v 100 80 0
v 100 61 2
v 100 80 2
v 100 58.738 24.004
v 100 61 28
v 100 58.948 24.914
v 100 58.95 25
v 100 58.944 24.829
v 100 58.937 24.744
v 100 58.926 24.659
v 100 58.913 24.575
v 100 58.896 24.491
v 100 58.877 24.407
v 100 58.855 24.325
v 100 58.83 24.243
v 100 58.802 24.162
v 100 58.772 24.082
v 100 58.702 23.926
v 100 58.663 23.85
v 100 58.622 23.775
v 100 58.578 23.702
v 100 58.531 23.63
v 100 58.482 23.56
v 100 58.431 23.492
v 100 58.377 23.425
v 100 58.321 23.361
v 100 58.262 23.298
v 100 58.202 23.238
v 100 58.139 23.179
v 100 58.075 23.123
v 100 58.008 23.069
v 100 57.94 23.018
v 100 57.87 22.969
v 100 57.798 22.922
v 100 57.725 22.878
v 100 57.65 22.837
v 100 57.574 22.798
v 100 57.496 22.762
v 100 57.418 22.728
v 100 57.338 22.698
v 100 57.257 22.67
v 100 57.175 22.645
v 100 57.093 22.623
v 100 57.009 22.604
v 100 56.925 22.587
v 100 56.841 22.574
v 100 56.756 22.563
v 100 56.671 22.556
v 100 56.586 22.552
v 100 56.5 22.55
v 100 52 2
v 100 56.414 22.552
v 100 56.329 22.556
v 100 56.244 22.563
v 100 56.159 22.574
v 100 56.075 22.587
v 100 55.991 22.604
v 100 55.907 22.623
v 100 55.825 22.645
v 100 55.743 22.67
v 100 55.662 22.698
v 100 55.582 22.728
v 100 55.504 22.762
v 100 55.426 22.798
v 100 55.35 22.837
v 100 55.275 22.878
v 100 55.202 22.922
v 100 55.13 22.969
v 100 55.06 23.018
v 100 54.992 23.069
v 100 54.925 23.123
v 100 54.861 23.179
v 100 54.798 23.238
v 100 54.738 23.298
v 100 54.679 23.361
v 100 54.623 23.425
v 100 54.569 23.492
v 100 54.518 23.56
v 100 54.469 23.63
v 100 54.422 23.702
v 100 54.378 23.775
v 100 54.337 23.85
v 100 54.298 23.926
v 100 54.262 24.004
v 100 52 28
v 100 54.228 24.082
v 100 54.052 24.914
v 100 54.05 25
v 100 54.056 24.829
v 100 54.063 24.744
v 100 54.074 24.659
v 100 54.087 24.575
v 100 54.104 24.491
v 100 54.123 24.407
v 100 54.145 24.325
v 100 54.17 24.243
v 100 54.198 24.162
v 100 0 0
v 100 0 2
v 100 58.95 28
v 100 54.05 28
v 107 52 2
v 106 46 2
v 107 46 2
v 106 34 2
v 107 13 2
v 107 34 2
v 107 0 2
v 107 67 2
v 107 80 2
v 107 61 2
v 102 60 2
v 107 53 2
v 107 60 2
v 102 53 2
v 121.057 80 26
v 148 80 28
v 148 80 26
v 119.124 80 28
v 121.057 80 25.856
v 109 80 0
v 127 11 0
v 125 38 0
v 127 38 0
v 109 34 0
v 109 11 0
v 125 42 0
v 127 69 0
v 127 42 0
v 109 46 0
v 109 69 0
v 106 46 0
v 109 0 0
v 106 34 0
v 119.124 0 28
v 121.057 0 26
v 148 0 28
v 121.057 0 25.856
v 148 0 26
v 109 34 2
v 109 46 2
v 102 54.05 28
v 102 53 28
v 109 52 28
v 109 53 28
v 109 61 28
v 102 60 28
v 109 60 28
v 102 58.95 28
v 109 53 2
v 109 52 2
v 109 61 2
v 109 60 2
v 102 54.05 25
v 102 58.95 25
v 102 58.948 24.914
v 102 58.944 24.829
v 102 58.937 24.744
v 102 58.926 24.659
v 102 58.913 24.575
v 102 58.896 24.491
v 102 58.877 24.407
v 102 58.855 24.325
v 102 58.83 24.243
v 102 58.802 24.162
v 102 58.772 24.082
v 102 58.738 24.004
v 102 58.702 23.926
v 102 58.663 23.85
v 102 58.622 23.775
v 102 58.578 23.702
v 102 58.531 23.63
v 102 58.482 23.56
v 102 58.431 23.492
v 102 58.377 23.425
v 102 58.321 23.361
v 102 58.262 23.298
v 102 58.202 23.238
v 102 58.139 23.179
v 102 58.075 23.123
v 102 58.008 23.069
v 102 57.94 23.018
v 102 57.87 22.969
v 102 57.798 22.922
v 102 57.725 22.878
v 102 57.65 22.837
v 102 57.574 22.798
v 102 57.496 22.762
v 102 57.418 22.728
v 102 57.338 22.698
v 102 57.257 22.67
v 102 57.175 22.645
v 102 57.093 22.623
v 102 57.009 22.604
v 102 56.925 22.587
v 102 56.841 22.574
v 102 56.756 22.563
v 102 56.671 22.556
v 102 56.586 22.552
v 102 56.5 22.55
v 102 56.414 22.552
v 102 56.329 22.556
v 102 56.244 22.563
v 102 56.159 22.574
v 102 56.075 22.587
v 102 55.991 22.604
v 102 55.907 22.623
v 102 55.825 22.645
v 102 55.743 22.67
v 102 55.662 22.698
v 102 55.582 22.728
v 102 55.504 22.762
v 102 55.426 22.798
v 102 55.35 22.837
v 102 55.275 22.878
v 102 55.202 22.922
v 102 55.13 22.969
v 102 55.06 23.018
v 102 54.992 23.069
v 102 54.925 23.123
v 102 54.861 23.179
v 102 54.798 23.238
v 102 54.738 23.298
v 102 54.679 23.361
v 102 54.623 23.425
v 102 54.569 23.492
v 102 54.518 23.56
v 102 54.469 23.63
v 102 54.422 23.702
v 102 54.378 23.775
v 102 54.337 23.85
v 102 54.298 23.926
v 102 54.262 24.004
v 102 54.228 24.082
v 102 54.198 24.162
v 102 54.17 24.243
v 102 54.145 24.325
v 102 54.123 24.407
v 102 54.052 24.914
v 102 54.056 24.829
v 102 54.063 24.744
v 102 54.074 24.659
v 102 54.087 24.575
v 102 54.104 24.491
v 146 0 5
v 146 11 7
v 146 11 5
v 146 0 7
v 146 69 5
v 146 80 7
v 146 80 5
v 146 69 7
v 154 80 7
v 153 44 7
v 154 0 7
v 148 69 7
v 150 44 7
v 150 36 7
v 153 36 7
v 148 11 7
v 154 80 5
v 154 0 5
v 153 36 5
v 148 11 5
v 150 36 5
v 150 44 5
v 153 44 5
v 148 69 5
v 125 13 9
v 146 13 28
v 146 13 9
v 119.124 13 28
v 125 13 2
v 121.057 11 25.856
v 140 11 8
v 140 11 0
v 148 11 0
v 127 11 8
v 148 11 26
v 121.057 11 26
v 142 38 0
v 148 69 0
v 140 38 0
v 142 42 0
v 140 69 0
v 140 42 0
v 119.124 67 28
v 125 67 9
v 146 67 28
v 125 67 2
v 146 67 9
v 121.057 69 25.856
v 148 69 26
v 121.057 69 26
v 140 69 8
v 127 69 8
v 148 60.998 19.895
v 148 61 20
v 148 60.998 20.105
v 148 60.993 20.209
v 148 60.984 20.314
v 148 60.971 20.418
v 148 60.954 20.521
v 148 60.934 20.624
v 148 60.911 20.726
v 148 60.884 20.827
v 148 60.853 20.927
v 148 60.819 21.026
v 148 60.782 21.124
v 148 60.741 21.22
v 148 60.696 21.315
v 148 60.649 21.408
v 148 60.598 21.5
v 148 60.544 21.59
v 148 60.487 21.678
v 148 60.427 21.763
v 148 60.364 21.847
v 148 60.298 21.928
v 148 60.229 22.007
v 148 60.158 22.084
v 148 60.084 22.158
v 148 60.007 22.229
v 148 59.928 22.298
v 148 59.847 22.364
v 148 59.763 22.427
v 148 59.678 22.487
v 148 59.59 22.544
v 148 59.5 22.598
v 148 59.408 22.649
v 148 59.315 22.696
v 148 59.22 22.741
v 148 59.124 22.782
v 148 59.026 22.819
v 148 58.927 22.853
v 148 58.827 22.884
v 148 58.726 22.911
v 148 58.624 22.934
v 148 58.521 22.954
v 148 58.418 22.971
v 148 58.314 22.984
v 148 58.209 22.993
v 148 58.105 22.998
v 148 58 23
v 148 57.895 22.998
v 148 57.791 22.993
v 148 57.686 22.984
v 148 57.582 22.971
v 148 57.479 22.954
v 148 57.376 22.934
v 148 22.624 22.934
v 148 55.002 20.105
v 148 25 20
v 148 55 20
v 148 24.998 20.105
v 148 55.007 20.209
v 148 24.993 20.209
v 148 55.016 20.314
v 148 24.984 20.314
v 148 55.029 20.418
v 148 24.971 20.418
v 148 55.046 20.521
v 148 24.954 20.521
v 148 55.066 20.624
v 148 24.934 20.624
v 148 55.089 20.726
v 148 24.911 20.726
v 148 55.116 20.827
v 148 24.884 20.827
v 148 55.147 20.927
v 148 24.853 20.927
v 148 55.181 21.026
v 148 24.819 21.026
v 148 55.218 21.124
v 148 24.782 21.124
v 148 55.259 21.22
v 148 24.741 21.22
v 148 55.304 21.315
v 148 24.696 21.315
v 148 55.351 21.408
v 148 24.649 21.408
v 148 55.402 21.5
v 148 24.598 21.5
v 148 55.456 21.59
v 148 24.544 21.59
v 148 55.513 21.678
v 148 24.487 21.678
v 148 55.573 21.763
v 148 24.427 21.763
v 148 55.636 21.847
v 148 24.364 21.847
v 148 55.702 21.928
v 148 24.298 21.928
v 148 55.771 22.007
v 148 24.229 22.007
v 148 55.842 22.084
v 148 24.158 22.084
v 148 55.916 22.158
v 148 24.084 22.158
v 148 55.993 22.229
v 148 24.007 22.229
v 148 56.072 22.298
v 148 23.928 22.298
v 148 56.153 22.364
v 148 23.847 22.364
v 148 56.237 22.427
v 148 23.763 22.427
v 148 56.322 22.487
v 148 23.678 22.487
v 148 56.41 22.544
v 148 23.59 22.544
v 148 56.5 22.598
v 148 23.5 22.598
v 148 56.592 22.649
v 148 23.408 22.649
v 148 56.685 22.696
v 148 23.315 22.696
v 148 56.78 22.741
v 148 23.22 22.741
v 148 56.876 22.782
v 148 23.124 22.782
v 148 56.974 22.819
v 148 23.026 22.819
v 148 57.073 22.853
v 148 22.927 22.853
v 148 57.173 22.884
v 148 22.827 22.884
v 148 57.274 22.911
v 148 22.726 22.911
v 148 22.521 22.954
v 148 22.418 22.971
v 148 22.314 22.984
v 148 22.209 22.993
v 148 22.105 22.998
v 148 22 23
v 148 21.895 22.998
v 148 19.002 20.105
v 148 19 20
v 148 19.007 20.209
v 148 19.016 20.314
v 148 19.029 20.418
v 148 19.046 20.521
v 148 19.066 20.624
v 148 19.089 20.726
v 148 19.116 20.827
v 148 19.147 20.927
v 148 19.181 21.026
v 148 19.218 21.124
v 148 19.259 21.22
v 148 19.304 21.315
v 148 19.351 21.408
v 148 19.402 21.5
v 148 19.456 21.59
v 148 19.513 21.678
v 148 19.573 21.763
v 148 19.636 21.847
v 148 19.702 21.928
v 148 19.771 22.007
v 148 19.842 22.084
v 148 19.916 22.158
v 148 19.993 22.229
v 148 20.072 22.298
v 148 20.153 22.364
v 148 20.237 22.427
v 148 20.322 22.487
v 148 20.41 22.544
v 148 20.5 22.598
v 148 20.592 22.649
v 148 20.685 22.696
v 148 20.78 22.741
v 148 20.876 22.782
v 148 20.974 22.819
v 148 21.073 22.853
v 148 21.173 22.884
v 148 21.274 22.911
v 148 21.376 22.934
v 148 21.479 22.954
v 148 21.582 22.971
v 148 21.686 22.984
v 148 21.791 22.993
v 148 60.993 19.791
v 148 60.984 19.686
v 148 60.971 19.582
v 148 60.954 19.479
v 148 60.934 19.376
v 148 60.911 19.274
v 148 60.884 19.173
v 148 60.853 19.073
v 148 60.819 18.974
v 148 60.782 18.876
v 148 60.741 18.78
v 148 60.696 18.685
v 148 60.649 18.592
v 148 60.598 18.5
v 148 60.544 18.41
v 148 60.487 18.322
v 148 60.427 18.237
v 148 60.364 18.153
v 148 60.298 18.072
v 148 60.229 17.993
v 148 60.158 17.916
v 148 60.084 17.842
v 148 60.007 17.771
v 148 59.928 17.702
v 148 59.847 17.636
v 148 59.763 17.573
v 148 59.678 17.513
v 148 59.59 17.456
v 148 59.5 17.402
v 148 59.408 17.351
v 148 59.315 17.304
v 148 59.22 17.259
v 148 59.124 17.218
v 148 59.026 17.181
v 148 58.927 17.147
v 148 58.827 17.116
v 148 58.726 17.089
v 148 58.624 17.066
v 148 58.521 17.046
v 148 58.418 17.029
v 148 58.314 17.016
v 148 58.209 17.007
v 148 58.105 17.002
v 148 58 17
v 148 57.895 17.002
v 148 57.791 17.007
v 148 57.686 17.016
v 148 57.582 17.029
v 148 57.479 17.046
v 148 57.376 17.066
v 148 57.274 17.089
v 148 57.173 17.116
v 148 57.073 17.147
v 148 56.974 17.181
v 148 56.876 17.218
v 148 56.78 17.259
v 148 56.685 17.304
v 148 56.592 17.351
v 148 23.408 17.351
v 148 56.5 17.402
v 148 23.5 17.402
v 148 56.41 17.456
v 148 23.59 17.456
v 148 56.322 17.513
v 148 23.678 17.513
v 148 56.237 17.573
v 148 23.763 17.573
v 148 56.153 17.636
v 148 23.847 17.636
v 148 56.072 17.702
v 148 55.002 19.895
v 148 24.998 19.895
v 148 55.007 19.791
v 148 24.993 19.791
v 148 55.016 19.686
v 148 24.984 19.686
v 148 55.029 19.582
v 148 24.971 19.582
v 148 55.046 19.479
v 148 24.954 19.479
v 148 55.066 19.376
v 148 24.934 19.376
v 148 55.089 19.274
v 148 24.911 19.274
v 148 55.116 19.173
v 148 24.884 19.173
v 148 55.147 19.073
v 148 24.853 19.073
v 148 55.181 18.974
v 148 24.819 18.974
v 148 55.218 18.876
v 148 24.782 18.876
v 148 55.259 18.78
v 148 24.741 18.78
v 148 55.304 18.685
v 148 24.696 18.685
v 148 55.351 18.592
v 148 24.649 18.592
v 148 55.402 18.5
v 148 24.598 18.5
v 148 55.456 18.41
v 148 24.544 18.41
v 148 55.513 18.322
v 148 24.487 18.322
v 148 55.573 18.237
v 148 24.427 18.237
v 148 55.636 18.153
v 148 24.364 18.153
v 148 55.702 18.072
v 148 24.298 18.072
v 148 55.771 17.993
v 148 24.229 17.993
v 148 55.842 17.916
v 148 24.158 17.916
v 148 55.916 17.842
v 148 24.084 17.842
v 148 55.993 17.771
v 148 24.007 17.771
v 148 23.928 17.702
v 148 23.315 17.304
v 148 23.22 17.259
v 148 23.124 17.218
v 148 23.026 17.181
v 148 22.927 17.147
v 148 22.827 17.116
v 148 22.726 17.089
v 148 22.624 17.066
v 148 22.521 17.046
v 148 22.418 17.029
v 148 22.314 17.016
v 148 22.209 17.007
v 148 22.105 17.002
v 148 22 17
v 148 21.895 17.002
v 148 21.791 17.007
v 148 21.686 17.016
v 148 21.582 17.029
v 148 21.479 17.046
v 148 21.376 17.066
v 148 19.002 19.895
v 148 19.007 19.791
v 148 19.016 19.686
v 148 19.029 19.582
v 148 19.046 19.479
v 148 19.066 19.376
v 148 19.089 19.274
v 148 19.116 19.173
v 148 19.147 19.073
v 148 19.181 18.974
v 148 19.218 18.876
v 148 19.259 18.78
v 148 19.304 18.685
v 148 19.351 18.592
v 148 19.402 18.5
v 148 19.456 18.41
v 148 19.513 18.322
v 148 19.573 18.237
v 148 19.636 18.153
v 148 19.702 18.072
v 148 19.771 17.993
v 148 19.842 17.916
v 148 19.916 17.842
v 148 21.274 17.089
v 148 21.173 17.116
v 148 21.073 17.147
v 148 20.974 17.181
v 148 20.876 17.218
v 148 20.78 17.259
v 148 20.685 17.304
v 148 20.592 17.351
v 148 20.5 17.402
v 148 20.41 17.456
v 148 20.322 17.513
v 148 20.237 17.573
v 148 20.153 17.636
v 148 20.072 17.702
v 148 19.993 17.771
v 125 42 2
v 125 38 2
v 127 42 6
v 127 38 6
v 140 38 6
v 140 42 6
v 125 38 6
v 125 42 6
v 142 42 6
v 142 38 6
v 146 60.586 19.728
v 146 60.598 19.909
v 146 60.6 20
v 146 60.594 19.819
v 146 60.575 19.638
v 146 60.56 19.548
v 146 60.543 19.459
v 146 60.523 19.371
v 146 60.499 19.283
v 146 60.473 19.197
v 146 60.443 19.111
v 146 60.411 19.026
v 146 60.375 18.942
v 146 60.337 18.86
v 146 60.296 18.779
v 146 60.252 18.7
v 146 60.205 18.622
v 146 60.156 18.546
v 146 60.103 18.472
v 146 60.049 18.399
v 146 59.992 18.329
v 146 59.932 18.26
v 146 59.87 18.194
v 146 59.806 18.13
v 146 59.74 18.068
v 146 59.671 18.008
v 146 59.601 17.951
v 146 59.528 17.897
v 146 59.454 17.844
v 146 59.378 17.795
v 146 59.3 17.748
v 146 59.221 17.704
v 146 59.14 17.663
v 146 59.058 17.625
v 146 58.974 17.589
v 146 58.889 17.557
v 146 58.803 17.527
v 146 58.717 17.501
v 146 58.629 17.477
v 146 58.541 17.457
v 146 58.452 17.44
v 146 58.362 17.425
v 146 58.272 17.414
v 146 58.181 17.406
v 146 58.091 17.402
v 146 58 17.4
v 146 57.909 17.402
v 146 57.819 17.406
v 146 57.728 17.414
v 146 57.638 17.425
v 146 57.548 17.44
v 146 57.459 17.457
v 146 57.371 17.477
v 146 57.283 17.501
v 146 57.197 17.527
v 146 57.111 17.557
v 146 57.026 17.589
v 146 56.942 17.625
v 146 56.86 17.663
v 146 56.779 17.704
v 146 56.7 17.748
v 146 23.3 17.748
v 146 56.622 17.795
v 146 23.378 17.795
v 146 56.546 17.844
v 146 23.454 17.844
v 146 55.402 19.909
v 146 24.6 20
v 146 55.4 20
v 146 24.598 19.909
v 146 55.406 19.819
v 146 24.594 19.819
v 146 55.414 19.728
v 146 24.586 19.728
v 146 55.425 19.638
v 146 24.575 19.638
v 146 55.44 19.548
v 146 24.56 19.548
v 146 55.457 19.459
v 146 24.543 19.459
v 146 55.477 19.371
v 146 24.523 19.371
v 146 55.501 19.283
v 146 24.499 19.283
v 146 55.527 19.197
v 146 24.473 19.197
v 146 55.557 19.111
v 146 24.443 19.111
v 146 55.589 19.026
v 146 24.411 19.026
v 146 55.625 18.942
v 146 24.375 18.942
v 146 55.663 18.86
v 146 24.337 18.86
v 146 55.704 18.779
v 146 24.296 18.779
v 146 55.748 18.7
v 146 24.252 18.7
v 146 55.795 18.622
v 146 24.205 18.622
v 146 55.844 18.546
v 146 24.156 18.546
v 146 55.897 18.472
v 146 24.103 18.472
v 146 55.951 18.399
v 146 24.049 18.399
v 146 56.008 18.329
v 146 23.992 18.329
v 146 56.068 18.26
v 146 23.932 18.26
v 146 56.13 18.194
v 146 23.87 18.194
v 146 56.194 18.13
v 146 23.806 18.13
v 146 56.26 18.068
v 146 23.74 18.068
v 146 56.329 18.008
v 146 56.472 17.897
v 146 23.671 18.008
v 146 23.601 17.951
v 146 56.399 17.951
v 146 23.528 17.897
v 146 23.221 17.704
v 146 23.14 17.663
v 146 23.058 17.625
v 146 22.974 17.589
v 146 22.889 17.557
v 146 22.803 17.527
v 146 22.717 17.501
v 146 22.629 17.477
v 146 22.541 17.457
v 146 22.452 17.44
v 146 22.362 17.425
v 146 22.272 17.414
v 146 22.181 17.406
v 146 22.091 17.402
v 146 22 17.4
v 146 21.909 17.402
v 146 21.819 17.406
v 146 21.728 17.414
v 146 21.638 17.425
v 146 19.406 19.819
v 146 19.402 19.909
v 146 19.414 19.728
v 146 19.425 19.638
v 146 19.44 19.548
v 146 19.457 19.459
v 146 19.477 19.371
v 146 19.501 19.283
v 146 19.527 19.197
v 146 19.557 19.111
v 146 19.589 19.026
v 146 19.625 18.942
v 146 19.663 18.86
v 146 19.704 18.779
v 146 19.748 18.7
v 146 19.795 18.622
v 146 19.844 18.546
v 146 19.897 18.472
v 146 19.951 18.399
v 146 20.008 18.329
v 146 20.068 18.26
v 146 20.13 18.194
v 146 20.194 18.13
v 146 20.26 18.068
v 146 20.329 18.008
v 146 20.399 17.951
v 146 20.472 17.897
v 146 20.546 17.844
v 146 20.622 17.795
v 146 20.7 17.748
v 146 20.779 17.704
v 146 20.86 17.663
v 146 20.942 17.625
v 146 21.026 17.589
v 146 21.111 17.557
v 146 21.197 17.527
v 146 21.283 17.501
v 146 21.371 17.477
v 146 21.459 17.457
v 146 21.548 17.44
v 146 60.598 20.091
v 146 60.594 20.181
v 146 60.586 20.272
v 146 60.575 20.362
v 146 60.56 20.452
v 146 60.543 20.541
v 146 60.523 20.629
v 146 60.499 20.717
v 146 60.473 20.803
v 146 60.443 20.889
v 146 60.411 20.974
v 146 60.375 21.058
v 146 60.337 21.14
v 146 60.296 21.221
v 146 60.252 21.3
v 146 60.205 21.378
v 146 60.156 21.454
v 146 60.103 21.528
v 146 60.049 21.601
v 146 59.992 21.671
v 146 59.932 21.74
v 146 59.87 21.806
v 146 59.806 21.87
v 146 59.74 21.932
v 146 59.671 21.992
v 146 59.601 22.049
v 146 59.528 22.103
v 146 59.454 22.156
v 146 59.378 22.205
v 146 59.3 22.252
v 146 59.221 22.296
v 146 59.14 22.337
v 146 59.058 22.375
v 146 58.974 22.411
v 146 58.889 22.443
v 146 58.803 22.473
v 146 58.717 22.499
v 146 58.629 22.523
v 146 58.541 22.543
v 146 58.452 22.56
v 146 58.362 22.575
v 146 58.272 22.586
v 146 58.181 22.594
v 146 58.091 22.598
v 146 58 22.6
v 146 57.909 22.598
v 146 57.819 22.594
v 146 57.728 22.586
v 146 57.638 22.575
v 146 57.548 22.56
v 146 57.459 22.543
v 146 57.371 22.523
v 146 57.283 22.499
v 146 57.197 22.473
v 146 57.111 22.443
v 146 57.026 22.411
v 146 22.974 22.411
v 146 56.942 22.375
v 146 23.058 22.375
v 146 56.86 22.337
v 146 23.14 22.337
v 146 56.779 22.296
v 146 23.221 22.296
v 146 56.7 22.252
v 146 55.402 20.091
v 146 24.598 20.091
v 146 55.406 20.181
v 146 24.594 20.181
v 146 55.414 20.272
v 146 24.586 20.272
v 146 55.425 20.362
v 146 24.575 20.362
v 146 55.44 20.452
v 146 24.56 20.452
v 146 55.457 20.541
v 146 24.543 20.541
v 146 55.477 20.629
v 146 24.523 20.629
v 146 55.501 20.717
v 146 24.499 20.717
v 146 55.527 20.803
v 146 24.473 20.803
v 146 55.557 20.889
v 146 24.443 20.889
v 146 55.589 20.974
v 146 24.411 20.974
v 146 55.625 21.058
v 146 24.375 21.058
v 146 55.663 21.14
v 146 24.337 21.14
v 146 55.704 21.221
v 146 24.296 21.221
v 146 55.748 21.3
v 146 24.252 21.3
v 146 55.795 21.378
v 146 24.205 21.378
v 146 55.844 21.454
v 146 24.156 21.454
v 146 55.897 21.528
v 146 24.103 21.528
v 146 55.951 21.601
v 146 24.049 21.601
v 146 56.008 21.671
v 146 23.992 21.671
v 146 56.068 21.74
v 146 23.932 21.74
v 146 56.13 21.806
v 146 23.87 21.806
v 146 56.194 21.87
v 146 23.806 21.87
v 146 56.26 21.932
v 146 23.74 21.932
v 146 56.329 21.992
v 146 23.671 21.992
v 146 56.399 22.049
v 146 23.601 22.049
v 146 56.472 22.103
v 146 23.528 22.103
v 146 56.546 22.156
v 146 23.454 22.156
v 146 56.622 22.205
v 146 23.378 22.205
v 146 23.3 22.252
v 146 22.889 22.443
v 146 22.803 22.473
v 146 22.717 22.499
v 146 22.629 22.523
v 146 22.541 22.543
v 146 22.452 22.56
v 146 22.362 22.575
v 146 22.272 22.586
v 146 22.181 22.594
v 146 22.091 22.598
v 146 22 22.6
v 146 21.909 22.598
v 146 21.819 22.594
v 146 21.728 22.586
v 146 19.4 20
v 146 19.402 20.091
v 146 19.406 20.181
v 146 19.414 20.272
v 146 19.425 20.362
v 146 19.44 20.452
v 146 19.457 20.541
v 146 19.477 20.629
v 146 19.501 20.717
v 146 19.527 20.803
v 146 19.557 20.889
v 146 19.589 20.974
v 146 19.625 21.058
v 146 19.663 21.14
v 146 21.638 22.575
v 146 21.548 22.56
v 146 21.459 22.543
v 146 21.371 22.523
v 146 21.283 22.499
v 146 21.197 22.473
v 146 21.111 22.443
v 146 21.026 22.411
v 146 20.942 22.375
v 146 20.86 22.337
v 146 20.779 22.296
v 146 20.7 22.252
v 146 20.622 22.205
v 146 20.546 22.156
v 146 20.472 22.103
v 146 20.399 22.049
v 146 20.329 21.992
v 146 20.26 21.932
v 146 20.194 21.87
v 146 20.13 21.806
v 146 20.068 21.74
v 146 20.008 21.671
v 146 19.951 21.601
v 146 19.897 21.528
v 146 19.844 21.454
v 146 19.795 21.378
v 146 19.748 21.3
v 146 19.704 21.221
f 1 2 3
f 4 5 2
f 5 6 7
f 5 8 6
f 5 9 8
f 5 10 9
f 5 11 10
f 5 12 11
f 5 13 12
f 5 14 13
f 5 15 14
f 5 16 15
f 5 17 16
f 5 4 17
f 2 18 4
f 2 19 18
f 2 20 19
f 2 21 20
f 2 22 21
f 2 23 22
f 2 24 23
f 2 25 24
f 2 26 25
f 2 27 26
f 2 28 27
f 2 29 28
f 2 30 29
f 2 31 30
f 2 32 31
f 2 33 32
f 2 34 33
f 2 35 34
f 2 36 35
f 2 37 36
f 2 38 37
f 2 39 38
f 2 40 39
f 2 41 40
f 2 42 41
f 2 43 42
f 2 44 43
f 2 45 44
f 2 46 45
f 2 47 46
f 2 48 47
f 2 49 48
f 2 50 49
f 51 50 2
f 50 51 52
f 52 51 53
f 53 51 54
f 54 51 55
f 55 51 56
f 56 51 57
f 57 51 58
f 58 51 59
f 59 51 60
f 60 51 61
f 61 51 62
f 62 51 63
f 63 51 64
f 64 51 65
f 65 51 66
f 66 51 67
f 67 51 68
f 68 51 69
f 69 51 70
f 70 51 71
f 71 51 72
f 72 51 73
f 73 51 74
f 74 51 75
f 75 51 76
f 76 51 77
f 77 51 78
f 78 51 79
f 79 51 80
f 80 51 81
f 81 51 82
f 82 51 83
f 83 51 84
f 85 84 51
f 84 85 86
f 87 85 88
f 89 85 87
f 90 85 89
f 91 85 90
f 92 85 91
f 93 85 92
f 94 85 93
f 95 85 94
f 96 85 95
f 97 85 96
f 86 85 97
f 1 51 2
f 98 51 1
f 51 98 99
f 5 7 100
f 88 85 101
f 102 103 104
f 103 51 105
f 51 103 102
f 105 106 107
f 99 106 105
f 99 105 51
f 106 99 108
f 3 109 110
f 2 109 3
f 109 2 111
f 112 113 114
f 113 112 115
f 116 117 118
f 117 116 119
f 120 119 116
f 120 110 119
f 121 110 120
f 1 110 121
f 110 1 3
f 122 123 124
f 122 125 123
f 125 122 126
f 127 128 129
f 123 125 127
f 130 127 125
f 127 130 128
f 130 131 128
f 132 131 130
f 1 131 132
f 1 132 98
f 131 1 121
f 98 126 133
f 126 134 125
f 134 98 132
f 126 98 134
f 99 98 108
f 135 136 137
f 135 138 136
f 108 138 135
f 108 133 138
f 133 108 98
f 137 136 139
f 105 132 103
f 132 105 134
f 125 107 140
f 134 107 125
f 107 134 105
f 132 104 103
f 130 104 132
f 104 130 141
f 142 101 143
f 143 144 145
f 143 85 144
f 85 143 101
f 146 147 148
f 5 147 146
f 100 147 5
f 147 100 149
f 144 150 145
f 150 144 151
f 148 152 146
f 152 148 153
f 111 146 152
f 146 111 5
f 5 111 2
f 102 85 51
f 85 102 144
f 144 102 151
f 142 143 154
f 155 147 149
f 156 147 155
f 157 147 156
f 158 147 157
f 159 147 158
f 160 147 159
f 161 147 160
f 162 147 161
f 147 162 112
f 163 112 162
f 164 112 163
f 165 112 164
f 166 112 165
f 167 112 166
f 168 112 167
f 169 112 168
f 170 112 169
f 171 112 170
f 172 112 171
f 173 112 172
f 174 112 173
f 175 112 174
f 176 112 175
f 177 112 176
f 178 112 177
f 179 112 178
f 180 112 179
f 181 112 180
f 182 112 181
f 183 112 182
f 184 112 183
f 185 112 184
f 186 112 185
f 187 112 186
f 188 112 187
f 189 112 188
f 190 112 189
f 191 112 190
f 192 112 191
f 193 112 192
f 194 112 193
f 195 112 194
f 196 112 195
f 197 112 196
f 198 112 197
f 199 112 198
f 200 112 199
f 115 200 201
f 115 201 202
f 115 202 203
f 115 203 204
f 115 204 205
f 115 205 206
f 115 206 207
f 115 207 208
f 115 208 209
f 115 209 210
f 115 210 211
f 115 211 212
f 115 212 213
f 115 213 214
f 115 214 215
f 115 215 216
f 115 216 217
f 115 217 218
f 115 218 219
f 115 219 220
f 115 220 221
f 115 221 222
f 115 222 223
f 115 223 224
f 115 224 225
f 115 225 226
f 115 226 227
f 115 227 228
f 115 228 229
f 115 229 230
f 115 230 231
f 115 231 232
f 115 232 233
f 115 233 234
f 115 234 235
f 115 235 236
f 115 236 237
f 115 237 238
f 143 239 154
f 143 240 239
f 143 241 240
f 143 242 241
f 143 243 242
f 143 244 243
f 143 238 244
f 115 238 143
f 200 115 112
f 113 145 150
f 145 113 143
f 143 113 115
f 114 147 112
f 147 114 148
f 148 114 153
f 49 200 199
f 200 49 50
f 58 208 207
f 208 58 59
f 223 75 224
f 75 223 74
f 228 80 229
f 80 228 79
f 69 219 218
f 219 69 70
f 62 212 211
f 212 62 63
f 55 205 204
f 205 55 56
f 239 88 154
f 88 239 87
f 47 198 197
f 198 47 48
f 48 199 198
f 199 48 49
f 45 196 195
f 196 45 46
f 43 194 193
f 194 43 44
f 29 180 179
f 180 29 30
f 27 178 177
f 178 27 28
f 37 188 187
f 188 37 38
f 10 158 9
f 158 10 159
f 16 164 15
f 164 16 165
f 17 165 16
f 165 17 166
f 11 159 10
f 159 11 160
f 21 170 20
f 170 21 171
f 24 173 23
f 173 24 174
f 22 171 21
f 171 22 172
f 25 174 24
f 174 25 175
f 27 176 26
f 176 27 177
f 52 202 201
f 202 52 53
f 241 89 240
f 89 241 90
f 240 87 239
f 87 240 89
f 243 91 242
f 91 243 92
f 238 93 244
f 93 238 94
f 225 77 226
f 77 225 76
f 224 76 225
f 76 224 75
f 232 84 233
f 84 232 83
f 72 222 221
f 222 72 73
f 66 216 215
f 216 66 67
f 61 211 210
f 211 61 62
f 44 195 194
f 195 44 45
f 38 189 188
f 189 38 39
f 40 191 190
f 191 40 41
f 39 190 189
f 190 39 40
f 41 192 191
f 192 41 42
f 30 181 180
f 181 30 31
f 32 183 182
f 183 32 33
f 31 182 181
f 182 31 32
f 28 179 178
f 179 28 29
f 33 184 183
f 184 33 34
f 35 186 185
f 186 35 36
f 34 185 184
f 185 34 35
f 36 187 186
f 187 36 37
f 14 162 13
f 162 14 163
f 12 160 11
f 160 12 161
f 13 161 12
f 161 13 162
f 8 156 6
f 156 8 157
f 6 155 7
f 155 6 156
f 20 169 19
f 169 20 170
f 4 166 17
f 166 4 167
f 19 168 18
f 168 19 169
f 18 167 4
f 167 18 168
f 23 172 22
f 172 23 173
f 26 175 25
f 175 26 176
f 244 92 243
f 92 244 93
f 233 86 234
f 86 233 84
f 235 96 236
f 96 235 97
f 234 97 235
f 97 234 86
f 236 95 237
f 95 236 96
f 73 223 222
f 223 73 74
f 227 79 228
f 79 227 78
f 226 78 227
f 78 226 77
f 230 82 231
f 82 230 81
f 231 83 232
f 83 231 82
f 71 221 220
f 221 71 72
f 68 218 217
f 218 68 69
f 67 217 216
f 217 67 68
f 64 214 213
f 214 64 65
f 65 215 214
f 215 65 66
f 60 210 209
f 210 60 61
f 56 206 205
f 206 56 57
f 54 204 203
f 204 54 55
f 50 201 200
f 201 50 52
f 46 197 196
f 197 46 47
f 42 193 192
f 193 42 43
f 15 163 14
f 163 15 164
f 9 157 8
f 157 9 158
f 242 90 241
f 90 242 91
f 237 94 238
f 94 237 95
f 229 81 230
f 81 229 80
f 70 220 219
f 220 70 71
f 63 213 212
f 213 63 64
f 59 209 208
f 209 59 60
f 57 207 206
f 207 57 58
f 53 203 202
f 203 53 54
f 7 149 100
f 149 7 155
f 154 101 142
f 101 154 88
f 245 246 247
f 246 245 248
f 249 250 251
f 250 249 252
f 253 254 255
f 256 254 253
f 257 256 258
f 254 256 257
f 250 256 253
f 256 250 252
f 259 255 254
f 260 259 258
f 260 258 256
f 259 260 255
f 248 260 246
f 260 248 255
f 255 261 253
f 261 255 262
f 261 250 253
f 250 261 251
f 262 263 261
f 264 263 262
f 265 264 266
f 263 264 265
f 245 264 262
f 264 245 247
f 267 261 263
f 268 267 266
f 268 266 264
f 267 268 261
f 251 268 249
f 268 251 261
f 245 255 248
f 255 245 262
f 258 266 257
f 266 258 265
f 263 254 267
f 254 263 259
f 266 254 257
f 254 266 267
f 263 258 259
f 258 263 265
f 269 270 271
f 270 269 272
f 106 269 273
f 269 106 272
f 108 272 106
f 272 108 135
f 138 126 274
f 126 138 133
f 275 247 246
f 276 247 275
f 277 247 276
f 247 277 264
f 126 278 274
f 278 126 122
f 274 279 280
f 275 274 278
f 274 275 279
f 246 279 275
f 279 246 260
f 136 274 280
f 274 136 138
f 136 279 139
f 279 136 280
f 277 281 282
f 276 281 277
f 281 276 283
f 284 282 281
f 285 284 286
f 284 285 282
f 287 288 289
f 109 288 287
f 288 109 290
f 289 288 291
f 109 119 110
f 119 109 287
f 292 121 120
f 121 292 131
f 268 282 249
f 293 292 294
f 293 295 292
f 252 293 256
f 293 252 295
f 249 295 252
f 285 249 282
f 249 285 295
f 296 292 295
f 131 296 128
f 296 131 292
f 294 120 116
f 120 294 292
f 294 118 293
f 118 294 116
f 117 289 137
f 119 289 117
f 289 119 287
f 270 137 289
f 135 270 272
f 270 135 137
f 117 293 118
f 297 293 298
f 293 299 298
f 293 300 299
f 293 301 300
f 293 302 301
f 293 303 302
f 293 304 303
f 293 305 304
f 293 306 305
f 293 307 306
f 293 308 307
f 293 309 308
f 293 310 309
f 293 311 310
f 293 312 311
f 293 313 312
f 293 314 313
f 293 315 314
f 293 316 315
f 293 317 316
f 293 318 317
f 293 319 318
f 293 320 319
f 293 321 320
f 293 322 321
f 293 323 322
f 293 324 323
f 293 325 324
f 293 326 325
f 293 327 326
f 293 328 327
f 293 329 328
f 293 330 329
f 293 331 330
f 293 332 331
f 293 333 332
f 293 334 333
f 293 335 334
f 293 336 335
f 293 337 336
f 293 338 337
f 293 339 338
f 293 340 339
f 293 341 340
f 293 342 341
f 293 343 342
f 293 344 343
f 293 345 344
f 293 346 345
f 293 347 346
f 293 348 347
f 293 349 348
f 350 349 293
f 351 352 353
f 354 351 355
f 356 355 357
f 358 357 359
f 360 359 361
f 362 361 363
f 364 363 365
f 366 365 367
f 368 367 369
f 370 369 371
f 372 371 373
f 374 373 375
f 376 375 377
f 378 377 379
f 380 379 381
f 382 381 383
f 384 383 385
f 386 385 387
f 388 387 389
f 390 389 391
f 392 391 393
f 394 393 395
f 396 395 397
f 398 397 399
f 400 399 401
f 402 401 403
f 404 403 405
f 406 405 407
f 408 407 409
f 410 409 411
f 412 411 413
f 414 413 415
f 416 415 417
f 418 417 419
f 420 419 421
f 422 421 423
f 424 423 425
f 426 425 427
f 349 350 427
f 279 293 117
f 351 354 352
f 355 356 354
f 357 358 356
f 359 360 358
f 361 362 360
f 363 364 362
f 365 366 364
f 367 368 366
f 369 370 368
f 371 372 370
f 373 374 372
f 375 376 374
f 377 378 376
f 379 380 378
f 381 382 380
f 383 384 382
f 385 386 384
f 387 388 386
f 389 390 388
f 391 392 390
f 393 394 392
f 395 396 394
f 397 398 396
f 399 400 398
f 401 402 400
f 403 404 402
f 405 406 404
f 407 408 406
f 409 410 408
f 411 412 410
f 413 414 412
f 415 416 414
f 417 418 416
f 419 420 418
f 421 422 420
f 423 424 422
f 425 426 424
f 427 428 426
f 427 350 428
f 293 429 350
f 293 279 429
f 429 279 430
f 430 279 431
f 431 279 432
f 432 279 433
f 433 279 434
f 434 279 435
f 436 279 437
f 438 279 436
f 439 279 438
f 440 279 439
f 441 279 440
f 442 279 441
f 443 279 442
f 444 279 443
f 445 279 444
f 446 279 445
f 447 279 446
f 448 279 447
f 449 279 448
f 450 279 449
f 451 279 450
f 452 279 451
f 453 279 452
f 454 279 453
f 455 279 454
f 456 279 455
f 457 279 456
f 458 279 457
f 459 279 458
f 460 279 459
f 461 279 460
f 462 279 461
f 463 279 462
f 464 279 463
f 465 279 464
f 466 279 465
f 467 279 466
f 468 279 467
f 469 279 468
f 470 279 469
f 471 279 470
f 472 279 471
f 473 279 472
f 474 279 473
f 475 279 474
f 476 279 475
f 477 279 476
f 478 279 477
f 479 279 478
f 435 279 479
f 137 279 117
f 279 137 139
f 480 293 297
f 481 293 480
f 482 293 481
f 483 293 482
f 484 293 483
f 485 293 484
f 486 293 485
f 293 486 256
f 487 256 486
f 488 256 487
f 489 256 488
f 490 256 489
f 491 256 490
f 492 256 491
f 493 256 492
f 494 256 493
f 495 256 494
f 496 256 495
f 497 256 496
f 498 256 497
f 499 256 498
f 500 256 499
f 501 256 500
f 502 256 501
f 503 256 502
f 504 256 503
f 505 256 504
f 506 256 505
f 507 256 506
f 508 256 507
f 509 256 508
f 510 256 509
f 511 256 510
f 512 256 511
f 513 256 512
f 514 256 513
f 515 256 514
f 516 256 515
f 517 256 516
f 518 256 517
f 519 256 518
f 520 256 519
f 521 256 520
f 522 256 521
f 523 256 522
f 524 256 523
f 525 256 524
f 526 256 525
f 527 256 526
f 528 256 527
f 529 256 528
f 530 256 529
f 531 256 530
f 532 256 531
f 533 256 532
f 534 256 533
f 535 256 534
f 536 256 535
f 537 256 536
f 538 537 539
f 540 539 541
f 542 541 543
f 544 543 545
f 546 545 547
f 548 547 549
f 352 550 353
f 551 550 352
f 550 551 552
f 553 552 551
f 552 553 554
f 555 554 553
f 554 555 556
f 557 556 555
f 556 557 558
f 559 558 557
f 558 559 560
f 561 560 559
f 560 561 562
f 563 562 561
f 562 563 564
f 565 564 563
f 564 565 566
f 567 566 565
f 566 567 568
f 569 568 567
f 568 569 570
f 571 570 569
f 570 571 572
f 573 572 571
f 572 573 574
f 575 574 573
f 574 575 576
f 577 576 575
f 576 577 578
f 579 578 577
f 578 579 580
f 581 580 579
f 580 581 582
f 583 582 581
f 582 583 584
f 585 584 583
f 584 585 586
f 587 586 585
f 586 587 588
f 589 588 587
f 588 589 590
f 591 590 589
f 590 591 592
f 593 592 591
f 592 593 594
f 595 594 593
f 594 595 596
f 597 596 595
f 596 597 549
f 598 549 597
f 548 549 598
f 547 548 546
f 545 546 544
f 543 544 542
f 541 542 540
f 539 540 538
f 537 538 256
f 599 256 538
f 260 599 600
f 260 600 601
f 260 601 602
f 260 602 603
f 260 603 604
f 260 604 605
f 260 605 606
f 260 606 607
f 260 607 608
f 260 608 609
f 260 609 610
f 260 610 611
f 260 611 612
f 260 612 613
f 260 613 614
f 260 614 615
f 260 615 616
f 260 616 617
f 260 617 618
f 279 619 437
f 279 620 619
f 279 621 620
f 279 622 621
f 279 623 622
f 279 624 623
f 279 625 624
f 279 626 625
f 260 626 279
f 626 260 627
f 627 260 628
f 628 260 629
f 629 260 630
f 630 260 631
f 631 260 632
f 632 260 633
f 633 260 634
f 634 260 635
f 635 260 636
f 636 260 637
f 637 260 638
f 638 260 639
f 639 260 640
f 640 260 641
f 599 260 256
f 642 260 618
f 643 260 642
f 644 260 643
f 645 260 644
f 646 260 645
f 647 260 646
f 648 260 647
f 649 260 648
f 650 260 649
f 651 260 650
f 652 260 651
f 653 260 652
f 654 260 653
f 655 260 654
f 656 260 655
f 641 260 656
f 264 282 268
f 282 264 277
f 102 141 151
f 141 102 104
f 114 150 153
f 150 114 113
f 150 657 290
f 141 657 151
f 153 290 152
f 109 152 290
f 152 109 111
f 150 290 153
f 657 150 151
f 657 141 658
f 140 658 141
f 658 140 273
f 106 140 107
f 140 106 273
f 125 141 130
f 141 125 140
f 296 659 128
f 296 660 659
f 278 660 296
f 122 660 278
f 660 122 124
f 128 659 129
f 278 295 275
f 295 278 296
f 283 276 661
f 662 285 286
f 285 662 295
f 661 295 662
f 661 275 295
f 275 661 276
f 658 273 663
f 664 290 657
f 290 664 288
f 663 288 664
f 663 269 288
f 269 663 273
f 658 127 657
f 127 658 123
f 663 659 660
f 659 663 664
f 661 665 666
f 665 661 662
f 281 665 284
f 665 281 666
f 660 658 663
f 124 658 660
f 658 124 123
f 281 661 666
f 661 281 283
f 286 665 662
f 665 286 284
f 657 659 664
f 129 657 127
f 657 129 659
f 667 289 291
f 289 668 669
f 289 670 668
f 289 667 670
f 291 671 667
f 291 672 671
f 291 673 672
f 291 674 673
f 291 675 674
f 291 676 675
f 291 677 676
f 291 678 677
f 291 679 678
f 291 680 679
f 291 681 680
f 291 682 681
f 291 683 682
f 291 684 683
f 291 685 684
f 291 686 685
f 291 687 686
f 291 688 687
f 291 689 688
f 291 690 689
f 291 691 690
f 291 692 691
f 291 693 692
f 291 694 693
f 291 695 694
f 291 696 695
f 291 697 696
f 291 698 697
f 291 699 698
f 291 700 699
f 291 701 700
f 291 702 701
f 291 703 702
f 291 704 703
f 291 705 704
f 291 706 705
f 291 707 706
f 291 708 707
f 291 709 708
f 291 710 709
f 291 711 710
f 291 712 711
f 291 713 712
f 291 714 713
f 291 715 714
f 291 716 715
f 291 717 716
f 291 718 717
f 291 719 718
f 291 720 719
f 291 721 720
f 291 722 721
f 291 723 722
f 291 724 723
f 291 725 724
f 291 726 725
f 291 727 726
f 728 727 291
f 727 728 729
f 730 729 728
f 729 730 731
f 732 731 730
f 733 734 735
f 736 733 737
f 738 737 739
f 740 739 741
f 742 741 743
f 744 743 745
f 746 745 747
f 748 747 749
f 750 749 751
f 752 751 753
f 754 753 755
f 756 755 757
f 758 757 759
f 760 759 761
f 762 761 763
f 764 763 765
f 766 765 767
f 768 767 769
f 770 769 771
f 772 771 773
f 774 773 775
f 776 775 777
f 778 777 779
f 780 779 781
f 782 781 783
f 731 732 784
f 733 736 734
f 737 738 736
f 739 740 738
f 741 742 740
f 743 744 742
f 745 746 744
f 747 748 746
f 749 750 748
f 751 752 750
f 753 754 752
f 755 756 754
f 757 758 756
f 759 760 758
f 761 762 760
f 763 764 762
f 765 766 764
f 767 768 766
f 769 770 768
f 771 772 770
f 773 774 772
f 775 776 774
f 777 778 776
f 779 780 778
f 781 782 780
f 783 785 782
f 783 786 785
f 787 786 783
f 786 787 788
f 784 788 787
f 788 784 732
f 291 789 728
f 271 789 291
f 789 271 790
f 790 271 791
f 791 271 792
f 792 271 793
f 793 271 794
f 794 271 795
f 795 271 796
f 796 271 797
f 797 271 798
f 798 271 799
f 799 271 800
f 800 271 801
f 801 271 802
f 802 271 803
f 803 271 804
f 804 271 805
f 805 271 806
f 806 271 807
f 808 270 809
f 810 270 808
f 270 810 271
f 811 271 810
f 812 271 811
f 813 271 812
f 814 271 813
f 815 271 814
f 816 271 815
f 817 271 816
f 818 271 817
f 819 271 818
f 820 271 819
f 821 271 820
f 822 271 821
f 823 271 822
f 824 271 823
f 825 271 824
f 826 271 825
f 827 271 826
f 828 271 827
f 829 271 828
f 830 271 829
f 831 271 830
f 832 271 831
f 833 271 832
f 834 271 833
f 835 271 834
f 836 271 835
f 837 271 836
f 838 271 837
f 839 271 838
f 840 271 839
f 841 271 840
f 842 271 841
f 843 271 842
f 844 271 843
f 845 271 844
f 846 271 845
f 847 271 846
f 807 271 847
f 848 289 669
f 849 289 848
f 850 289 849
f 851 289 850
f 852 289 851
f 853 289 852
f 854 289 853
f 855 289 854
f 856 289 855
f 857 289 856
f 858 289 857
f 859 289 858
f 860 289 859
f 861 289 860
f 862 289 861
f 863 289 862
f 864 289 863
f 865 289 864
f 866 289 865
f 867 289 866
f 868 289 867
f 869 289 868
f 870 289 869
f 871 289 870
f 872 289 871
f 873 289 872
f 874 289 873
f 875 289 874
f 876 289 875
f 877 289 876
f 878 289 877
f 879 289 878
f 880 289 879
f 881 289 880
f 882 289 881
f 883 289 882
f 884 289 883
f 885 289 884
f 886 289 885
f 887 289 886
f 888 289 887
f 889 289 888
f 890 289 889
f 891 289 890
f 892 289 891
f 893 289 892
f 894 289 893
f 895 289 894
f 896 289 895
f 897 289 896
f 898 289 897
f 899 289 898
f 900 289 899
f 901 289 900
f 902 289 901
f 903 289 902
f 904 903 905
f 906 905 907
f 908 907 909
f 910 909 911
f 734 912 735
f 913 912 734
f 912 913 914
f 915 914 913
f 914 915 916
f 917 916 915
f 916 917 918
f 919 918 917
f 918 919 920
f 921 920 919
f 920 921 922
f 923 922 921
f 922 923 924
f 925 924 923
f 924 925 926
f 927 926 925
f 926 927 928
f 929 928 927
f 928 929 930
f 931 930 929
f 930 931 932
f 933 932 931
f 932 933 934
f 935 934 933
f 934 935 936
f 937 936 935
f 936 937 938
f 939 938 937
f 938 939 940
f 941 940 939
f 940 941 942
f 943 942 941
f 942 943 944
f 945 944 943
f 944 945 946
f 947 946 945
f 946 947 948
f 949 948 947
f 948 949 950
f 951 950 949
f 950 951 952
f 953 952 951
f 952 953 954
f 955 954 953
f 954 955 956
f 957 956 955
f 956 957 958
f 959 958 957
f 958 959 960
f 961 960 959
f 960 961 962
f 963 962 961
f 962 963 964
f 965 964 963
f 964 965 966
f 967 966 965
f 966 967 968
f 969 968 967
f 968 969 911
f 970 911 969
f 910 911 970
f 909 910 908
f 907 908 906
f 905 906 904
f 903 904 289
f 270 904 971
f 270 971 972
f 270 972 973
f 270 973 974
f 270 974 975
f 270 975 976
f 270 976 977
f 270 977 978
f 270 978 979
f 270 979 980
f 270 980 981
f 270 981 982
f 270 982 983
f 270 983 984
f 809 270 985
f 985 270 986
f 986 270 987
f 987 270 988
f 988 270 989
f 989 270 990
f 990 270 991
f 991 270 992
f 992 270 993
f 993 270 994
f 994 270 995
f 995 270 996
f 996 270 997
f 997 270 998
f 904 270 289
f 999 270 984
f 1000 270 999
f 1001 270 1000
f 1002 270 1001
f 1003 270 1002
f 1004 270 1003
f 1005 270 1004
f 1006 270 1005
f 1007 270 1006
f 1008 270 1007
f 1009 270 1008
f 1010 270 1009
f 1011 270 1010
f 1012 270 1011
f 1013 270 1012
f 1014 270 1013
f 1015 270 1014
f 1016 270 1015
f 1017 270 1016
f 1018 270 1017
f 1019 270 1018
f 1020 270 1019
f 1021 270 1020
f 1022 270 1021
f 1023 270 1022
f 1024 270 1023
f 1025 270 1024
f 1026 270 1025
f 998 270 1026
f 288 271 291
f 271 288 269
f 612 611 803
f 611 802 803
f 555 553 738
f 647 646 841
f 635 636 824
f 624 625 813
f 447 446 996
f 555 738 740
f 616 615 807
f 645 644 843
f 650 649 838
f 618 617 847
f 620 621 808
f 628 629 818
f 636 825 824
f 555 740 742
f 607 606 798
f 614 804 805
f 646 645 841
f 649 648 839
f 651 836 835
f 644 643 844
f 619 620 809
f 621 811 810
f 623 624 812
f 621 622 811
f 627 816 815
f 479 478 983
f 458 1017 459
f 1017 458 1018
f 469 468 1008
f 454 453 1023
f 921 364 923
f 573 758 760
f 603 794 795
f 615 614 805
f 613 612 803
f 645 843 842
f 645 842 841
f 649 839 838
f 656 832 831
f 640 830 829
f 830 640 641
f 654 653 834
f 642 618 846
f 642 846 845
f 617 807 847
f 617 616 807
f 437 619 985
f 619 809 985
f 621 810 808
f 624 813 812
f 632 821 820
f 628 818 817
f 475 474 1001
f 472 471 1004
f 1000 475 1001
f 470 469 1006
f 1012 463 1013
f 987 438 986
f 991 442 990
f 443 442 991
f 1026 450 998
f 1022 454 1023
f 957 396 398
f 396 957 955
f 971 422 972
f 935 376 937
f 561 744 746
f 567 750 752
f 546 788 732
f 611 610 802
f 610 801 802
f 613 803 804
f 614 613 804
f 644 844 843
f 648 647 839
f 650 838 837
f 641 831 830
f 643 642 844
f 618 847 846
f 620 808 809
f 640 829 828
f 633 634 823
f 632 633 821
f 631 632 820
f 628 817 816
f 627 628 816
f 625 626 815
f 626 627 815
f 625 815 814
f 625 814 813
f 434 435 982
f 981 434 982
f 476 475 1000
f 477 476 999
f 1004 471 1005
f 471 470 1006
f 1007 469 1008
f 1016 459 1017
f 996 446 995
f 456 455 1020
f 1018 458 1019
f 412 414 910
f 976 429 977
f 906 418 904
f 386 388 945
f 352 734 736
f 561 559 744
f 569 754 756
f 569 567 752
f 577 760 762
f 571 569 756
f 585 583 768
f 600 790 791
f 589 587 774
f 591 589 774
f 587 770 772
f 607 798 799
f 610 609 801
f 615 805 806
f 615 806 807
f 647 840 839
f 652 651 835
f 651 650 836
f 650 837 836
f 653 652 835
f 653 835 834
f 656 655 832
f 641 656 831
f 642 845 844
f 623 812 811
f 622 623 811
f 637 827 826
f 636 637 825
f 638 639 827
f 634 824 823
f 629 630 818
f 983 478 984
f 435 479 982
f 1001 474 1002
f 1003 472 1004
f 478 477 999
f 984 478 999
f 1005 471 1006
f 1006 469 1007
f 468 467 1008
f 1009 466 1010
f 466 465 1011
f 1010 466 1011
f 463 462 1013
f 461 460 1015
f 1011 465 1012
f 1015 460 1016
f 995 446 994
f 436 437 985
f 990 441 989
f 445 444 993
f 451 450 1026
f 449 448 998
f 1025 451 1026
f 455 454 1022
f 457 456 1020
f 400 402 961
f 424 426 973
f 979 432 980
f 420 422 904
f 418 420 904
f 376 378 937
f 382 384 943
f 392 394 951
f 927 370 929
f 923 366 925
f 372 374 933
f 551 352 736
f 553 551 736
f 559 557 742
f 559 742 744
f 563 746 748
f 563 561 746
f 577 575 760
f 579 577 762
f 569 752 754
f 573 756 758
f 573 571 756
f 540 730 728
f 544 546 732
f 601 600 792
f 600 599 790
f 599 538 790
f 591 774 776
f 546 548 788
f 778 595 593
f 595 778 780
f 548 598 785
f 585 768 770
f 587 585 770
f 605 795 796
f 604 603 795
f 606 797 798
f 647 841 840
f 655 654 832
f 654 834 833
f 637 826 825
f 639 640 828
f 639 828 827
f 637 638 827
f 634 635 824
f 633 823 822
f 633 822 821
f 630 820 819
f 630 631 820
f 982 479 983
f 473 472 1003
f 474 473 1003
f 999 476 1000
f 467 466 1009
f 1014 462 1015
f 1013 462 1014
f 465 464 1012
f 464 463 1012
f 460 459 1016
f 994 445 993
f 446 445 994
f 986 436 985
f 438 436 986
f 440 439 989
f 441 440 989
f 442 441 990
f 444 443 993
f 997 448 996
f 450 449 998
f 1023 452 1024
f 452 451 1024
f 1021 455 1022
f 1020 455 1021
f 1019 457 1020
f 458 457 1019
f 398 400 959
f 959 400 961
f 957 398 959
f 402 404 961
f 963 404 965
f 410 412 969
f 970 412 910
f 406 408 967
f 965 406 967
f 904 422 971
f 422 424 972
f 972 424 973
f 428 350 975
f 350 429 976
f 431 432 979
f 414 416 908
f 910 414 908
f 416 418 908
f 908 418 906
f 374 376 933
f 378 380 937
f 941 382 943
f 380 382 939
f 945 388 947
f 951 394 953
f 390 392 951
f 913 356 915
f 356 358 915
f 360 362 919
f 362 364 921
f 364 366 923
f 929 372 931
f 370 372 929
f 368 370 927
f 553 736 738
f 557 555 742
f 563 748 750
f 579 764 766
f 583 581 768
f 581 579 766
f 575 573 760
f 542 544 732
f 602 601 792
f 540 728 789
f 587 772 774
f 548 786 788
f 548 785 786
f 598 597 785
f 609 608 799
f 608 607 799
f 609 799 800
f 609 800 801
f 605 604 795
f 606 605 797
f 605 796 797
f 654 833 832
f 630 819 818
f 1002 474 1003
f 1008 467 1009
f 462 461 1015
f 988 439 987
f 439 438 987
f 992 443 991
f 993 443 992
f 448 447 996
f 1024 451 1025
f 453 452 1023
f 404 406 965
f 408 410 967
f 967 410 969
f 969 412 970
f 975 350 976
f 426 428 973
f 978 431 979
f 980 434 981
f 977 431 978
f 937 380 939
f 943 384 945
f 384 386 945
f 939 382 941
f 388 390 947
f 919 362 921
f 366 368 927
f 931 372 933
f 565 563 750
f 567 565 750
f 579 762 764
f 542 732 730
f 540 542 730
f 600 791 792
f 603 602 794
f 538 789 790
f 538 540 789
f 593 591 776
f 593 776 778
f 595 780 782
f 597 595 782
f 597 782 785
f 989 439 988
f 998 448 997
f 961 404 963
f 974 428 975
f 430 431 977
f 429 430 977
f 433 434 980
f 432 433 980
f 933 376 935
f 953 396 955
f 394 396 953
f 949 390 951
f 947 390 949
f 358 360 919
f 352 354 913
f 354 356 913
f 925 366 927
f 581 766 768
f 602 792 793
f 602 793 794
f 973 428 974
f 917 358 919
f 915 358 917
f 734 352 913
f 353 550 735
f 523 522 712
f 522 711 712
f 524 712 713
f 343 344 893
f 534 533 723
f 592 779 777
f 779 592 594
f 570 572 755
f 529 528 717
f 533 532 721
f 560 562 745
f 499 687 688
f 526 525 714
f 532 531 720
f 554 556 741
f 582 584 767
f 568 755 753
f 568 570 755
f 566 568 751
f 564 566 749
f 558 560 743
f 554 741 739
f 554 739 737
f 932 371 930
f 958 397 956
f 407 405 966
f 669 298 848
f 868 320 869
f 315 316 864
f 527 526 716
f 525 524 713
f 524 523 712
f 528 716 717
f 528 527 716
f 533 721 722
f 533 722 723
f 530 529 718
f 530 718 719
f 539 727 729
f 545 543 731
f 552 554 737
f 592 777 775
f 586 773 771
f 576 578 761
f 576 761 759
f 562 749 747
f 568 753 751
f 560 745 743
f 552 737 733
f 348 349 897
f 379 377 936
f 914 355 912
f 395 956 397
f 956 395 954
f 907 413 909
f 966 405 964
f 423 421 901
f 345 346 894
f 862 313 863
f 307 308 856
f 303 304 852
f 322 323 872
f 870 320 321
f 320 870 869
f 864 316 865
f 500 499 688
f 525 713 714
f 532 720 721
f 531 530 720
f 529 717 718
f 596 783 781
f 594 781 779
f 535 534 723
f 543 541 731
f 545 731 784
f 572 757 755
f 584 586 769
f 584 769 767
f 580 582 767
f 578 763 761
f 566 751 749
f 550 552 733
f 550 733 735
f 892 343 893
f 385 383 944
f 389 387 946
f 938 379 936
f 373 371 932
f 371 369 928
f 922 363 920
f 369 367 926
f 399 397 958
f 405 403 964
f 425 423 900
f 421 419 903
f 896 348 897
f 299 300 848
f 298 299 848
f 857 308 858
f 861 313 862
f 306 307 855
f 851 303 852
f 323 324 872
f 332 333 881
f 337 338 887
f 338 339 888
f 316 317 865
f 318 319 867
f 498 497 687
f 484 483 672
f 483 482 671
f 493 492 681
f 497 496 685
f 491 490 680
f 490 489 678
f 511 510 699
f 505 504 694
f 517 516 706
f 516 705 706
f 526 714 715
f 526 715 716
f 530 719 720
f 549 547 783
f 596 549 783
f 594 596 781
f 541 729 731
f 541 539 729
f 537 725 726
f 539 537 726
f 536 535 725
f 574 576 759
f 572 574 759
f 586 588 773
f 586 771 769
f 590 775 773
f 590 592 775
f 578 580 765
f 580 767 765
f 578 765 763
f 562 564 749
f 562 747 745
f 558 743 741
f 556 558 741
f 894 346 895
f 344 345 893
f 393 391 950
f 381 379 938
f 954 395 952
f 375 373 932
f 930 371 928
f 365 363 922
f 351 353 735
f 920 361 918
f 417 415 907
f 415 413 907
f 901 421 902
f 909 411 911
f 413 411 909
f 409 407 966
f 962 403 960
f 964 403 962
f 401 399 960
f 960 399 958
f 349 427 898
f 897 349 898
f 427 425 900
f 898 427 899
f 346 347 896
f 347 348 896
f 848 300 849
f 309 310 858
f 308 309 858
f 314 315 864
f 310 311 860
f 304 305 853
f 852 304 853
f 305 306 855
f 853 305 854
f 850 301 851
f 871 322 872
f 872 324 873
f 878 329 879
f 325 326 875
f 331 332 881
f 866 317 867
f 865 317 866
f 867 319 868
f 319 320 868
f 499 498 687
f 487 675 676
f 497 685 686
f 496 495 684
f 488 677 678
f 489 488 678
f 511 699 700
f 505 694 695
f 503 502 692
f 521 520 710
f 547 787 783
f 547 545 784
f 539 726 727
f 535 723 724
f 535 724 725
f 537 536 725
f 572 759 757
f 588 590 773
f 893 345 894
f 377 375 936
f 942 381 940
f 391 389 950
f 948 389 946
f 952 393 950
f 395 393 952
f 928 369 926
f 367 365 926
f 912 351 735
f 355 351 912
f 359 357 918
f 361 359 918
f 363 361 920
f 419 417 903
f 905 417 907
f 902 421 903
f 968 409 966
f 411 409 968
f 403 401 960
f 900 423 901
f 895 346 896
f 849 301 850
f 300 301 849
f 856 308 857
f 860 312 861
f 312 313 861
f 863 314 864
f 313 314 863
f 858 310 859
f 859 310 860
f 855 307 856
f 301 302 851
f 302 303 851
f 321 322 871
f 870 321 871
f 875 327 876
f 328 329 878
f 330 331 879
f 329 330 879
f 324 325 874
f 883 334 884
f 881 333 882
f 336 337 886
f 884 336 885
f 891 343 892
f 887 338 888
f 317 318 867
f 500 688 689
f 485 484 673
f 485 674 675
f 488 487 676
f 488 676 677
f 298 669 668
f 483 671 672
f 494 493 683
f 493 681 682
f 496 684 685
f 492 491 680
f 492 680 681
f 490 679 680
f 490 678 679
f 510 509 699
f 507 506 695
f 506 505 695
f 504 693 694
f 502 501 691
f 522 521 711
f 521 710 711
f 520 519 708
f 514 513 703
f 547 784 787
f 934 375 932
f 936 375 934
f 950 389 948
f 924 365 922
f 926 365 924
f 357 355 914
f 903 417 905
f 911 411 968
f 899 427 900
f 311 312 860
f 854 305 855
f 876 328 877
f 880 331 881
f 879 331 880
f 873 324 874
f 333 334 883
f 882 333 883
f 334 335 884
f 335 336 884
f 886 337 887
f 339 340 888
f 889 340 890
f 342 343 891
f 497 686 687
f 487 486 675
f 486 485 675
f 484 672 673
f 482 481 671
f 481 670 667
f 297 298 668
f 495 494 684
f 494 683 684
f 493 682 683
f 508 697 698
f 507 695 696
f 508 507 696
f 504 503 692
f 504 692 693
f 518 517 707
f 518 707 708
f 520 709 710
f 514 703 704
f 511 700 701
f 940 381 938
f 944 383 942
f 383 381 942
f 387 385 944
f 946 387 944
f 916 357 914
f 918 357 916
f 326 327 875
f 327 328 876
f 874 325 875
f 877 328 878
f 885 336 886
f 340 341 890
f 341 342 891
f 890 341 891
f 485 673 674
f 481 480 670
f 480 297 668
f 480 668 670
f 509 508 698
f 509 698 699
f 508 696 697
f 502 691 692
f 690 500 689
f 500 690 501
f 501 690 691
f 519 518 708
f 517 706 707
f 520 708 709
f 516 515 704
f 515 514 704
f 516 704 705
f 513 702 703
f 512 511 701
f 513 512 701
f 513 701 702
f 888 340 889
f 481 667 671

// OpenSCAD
$fn=180;

thickness = 2;

// rest



length_wheel = 40;


length_step_in = 45;
width_step_in = 5;
height_step_in = 5;

width_axis_back_holder = 7;
diameter_axis_back_axis_clip = 5;
width_axis_back_axis_clip = 3;

// Back
back_axis_holder_length = 15;
back_diameter_axis = 5.7;
back_axis_clip_end = 5.3;
back_axis_width = 12;

module axis() {
    cube([back_axis_holder_length, back_diameter_axis, width_axis_back_holder]);
    translate([back_axis_holder_length / 2, back_diameter_axis / 2, width_axis_back_holder]) {
        cylinder(d=back_diameter_axis, back_axis_width - width_axis_back_axis_clip - 1);
            
        translate([0, 0, back_axis_width - width_axis_back_axis_clip - 1]) {
            difference() {
                cylinder(d=diameter_axis_back_axis_clip, width_axis_back_axis_clip);
                translate([-1/2, - diameter_axis_back_axis_clip / 2, 0]) cube([1, diameter_axis_back_axis_clip, width_axis_back_axis_clip]);
            }
            
            translate([0, 0, width_axis_back_axis_clip]) difference() {
                cylinder(d=back_axis_clip_end, 1);
                translate([-1/2, - back_axis_clip_end / 2, 0]) cube([1, back_axis_clip_end, 1]);
            }
        }
    }
}

module back() {
    //width = 84;
    wheel_width = 11;
    
    back_length = 1;

    back_bumper_width = 77;
    back_bumper_length = 5;
    back_bumper_light_diameter_outter = 5.2;
    back_bumper_light_diameter_inner = 6;
    back_bumper_light_y_offset = 2;
    back_bumper_light_diameter = back_bumper_light_diameter_inner;

    trunk_width = 56;
    
    trunk_length = 40;
    trunk_height = 19;

    trunk_hole_diameter = 5.8;
    trunk_hole_x_offset = 0;

    trunk_clip_length = 5;

    back_bumper_height = 2 * thickness + back_bumper_light_diameter + 2;
    back_height = back_bumper_height + trunk_height;
        
    back_seat_width = 80;
   
    width = 2 * thickness + trunk_width + 2 * wheel_width;

    // bumper
    difference() {
        translate([0, (width - back_bumper_width) / 2, 0]) cube([back_bumper_length, back_bumper_width, back_bumper_height]);
        
        // lights
        translate([0, wheel_width + thickness, thickness + back_bumper_light_diameter / 2]) {
            translate([0, back_bumper_light_diameter / 2 + back_bumper_light_y_offset, 0]) rotate([0, 90, 0]) cylinder(d1=back_bumper_light_diameter_outter, d2=back_bumper_light_diameter_inner, 2 * back_bumper_length);
            translate([0, trunk_width - back_bumper_light_diameter / 2 - back_bumper_light_y_offset, 0]) rotate([0, 90, 0]) cylinder(d1=back_bumper_light_diameter_outter, d2=back_bumper_light_diameter_inner, 2 * back_bumper_length);
        }
        // hole
        translate([back_bumper_length, (width - back_bumper_width) / 2 + back_bumper_width / 2, 0]) cylinder(d=trunk_hole_diameter, 2 * back_bumper_height);
    }
        
    // trunk
    translate([back_bumper_length, wheel_width, 0])  difference() {
        cube([trunk_length, 2* thickness + trunk_width, back_height]);
        
        // actual trunk
        translate([0, thickness, back_bumper_height]) cube([trunk_length, trunk_width, back_height]);
        
        // below trunk
        translate([0, thickness, - back_height + back_bumper_height - thickness]) cube([trunk_length, trunk_width, back_height]);
        
        // slope
        translate([0, 0,back_bumper_height]) rotate([0, -60, 0]) cube([2 * back_height, width, 2 * back_height]);
        
        // hole
        translate([trunk_hole_x_offset, thickness + trunk_width / 2, back_bumper_height - 1.5 * thickness]) cylinder(d=trunk_hole_diameter, 2 * thickness);
    }
   
    // trunk clips
   translate([back_bumper_length + trunk_length - trunk_clip_length, (width - back_seat_width) / 2 + thickness, back_height])  difference() {
       
      cube([trunk_clip_length, back_seat_width - 2 * thickness, thickness]); 
      translate([0, wheel_width - (width - back_seat_width) / 2, 0]) cube([trunk_clip_length, trunk_width, thickness]);
   }
   
    // axis back
    translate([back_bumper_length + trunk_length / 2 - back_axis_holder_length / 2, wheel_width, 0]) rotate([90, 0, 0]) axis();
    translate([back_bumper_length + trunk_length / 2 - back_axis_holder_length / 2, width - wheel_width, back_diameter_axis]) rotate([-90, 0, 0]) axis();
               
    // trunk border to seat area
    translate([back_bumper_length + trunk_length, 0, 0])   cube([thickness, width, thickness]);
    translate([back_bumper_length + trunk_length, thickness + (width - back_seat_width) / 2, thickness])  difference() {
         cube([thickness, back_seat_width - 2 * thickness, back_height]);
         // lights
        translate([0, wheel_width , back_bumper_light_diameter / 2]) {
            translate([0, back_bumper_light_diameter / 2, 0]) rotate([0, 90, 0]) cylinder(d=back_bumper_light_diameter, 2 * back_bumper_length);
            translate([0, trunk_width - back_bumper_light_diameter / 2 - thickness, 0]) rotate([0, 90, 0]) cylinder(d=back_bumper_light_diameter,2 * back_bumper_length);
        }
    }
}

//back();

module front() {
    seating_area_length = 7;
    
    steering_wheel_length = 9;
    steering_wheel_width = 9;
    steering_wheel_height = 28;
    steering_wheel_hole_diameter = 4.9;
    steering_wheel_y_offset = 52;
    
    connect_hole_length = 3;
    connect_hole_width = 12;
    
    fender_height = 28;
    
    motor_length = 39;
    motor_width = 54;
    
    front_axis_x_offset = 20;
    front_axis_length = 13;
    front_axis_height = 8;
    front_axis_hole_height = 6;
    front_axis_hole_width = 4;
        
    front_wheels_y_rotate = 25;
    wheel_width = 11;
    
    radiator_length = 8;
    radiator_y_offset = 5;
   
    radiator_hole_length = 3;
    radiator_hole_width = 8;
    radiator_hole_x_offsets = 4;
    
    
    light_diameter_outter = 5.2;
    light_diameter_inner = 6;

    // old
    height_front_wheels = 9; // Couldn't measure properly
    width = motor_width + 2 * thickness + 2 * wheel_width; // 82;

    // steering wheel
    difference() {
        cube([seating_area_length, width, thickness]);
        
        //connect hole
        translate([steering_wheel_length - connect_hole_length, width / 2 - connect_hole_width / 2, 0]) cube([connect_hole_length, connect_hole_width, thickness]);
    }
    translate([0, steering_wheel_y_offset, 0]) difference() {
        cube([steering_wheel_length, steering_wheel_width, steering_wheel_height]);
        translate([thickness, 0.5 * thickness, 0]) cube([steering_wheel_length - 1 * thickness, steering_wheel_width - 1 * thickness, steering_wheel_height]);
        
        translate([0, steering_wheel_length / 2, 25]) rotate([0, 90, 0]) cylinder(d=steering_wheel_hole_diameter, 2 * steering_wheel_length);
        translate([0, steering_wheel_length / 2 - steering_wheel_hole_diameter / 2, 25]) cube([2 * steering_wheel_length, steering_wheel_hole_diameter, 2 * steering_wheel_length]);
    }
    
    module frontWheels() {
        front_wheells_upper_cut_length = 20;
        translate([-front_wheells_upper_cut_length * cos(front_wheels_y_rotate), -thickness, sin(front_wheels_y_rotate) * front_wheells_upper_cut_length + thickness]) 
            rotate([0, front_wheels_y_rotate, 0]) cube([front_wheells_upper_cut_length, (width - motor_width) / 2 + thickness, fender_height + 10]);
        translate([thickness, 0, 0]) 
            rotate([0, front_wheels_y_rotate, 0]) cube([20, wheel_width, (fender_height - thickness) / cos(front_wheels_y_rotate)]);
        translate([thickness - 1 + tan(front_wheels_y_rotate) * fender_height, 0, 0]) cube([length_wheel, wheel_width, fender_height - thickness]);
    }
    
    translate([seating_area_length, 0, 0]) difference() {
        cube([motor_length + thickness, width, fender_height]);
        
        translate([-seating_area_length + steering_wheel_length - connect_hole_length, width / 2 - connect_hole_width / 2, 0]) cube([connect_hole_length, connect_hole_width, thickness]);
        
        // front wheels
        frontWheels();
        translate([0, width - wheel_width, 0]) frontWheels();
        
        // axis
        translate([front_axis_x_offset, 0, 0]) cube([front_axis_length, width, front_axis_height]);
        translate([front_axis_x_offset - thickness, width / 2 - front_axis_hole_width / 2, 0]) cube([front_axis_length + 2 * thickness, front_axis_hole_width, front_axis_hole_height]);
        
        // front area
        // motor
        translate([0, (width - motor_width) / 2, height_front_wheels]) cube([motor_length, motor_width, fender_height]);
        
        translate([0, (width - motor_width) / 2, thickness]) cube([front_axis_x_offset - thickness, motor_width, fender_height]);
        
        lights_y_offset = 9;
        lights_z_offset = 20;
        
        // lights
        translate([motor_length, wheel_width + thickness + lights_y_offset, lights_z_offset]) rotate([0, 90, 0]) cylinder(d1=light_diameter_outter, d2=light_diameter_inner, thickness);
        translate([motor_length, wheel_width + motor_width + thickness - lights_y_offset, lights_z_offset]) rotate([0, 90, 0]) cylinder(d1=light_diameter_outter, d2=light_diameter_inner, thickness);
    }
     
    translate([seating_area_length + motor_length, 0, radiator_y_offset]) {
        difference() {
            cube([radiator_length, width, thickness]);
            translate([radiator_hole_x_offsets, width / 2 - radiator_hole_width / 2, 0]) cube([radiator_hole_length, radiator_hole_width, thickness]);
        }
    }
}

translate([100, 0, 0]) front();
